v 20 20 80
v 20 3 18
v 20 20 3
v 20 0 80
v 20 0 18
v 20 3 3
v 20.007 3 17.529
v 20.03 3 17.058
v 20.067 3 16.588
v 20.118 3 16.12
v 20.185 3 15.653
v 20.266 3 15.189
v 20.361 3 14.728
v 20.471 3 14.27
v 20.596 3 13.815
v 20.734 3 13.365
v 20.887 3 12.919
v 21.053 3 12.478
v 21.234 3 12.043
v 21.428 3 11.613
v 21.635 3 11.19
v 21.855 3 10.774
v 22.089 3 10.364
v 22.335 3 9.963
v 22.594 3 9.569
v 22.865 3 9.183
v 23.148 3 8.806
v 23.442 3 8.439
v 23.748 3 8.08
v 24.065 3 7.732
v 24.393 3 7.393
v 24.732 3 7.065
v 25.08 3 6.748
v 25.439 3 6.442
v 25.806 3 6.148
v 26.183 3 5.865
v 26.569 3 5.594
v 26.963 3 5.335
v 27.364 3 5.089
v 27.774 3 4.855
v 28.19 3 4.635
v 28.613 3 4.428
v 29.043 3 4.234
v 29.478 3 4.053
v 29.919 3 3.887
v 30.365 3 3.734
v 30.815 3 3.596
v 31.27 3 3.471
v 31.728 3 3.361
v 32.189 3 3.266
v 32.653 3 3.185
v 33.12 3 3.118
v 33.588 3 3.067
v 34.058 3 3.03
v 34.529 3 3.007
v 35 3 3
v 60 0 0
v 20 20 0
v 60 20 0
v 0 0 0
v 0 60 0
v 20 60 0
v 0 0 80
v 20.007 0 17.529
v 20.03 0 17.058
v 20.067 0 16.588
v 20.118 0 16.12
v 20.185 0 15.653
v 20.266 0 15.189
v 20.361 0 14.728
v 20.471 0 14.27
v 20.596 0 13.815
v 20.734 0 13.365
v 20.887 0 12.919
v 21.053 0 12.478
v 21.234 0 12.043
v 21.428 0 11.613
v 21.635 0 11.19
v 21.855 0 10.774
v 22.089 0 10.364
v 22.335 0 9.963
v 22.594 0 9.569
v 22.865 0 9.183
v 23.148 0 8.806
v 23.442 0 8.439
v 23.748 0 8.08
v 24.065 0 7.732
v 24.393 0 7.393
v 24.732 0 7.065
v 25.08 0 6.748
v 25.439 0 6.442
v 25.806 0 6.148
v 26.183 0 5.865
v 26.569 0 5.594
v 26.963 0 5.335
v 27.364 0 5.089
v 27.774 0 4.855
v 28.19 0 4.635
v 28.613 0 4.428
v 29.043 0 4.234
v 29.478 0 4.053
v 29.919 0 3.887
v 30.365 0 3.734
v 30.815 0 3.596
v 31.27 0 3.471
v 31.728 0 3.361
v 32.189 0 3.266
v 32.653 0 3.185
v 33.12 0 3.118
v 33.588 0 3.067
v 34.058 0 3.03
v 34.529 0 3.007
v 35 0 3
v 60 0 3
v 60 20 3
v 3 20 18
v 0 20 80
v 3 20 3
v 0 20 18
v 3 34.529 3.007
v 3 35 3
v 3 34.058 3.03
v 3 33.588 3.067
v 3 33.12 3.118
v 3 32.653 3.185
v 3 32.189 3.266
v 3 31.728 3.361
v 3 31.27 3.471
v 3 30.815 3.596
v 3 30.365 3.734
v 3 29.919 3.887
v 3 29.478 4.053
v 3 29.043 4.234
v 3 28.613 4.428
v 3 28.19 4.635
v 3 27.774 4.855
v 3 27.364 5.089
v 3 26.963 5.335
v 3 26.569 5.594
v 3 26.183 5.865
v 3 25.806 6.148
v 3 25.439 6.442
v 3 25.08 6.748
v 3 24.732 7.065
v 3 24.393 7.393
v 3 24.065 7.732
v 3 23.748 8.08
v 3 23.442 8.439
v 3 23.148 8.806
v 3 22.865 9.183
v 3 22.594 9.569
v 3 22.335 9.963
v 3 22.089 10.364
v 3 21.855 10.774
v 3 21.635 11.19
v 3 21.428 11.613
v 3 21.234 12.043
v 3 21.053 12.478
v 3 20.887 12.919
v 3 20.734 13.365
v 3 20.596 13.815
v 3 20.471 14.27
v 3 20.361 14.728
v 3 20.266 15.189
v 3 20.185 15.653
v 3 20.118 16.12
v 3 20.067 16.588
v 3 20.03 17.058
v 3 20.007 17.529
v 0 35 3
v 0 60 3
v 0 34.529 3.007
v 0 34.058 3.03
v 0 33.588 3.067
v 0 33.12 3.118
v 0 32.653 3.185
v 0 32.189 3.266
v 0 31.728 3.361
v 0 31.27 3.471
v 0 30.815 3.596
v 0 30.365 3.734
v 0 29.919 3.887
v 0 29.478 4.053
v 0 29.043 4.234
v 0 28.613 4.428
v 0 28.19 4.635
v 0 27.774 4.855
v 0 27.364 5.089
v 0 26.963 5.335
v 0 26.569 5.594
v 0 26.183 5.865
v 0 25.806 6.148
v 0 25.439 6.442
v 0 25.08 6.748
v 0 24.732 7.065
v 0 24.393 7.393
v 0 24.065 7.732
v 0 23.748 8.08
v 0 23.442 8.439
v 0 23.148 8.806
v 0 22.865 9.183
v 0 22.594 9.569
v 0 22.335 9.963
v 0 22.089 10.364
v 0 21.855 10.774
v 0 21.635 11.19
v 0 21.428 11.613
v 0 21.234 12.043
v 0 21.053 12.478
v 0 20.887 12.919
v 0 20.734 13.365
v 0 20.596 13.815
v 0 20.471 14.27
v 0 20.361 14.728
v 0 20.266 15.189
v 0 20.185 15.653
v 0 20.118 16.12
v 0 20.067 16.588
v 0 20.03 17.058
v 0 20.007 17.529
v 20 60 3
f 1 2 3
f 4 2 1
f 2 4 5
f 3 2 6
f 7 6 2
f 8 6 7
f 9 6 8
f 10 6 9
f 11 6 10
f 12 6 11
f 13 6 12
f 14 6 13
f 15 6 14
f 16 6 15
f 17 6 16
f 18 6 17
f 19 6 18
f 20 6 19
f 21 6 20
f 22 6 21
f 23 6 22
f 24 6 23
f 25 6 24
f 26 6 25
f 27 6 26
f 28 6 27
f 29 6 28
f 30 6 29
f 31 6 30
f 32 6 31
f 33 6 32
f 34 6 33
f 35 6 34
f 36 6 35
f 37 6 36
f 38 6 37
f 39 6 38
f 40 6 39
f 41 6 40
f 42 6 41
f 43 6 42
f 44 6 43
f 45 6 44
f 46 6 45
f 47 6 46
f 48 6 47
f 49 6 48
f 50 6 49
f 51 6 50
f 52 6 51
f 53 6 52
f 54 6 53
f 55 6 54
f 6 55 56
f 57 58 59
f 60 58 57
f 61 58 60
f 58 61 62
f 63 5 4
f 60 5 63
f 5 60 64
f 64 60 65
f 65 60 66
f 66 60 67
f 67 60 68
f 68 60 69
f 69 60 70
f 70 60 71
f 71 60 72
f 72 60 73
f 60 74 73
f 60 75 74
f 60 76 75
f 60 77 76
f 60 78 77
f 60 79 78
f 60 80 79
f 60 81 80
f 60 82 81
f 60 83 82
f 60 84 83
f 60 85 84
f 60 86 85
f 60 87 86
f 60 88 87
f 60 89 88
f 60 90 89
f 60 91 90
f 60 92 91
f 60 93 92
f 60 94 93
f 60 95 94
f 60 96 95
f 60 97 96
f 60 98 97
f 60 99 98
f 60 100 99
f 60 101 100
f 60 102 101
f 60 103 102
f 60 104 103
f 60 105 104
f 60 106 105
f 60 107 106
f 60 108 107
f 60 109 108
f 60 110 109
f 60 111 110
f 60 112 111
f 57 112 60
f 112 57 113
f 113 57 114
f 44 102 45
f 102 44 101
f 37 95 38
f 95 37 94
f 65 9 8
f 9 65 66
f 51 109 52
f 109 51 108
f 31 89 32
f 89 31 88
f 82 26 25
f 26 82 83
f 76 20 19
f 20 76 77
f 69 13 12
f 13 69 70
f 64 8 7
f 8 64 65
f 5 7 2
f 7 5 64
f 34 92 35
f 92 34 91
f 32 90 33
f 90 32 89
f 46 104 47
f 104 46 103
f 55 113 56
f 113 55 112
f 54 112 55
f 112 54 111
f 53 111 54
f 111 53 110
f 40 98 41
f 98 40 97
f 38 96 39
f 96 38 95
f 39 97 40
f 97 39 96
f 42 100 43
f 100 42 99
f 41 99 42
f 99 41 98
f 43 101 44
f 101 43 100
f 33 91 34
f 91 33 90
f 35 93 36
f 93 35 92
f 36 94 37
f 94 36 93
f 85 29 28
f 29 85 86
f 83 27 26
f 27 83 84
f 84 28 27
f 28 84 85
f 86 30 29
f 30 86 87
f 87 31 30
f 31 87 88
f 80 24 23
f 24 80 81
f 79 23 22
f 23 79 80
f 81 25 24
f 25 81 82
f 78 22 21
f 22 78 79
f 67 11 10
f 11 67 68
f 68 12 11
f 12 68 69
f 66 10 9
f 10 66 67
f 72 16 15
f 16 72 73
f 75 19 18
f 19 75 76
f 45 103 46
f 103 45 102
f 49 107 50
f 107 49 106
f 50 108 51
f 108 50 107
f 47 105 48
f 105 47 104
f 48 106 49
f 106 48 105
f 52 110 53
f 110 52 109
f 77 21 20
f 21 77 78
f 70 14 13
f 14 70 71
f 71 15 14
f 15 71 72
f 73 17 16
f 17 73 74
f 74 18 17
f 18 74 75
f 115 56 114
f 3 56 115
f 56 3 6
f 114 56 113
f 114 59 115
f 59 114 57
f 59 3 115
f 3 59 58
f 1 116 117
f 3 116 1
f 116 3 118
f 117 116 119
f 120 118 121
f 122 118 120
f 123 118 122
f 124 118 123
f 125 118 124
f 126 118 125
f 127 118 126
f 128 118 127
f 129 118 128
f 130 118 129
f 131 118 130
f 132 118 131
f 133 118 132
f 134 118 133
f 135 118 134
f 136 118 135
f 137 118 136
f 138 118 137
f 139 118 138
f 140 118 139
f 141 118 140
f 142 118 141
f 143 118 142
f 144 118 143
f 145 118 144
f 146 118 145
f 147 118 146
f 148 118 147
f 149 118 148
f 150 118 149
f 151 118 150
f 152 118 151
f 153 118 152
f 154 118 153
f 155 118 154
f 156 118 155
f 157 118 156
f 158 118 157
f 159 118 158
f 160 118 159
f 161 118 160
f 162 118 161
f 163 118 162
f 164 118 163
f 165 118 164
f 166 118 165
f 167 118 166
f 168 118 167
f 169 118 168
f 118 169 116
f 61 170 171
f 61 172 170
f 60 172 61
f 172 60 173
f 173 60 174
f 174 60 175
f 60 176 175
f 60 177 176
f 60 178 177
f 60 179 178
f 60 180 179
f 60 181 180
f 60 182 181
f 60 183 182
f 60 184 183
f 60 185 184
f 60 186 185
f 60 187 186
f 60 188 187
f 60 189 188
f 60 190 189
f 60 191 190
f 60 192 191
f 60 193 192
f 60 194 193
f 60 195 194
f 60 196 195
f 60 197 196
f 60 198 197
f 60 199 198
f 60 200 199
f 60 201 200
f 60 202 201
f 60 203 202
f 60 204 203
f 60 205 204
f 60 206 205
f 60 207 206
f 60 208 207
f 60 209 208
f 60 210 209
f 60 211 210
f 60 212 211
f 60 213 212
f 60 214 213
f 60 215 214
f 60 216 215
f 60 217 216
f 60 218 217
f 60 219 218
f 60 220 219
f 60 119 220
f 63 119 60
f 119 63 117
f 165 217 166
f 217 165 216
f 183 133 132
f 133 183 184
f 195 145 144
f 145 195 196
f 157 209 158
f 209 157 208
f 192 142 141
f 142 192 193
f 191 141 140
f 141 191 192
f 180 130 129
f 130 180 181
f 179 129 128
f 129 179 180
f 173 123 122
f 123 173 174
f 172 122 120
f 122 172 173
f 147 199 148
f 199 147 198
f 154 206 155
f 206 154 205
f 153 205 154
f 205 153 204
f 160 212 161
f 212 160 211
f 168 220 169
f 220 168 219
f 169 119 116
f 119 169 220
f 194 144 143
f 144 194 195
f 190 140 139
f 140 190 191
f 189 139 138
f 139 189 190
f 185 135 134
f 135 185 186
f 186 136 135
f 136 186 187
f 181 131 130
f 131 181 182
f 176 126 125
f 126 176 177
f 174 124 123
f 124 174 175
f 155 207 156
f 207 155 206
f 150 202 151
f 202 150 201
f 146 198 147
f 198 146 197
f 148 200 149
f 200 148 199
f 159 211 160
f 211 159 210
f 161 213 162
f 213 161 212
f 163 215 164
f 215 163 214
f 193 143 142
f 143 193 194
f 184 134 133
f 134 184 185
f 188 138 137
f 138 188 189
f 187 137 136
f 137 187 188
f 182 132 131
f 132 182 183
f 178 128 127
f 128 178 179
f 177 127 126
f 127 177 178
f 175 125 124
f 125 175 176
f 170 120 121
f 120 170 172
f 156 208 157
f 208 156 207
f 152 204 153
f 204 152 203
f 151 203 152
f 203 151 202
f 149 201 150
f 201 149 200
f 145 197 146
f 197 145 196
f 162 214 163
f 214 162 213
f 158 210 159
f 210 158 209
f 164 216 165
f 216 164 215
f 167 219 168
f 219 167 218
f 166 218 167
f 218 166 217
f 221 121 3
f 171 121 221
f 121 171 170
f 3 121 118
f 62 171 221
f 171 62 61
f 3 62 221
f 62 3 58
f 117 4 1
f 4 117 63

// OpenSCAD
$fn = 200;

height = 80;
bracketLength = 40;
legWidth = 20;
bracketThickness = 3;
braceLength = 30;

// leg
cube([legWidth, legWidth, height]);

// bracket 1
translate([legWidth, 0, 0])
bracket1();

rotate([0, 0, 90])
translate([legWidth, -legWidth, 0])
bracket2();

module bracket1() {
    difference() {
        union() {
            cube([bracketLength, legWidth, bracketThickness]);
        
            //brace
            difference() {
                cube([braceLength/2, bracketThickness, braceLength/2+bracketThickness]);
                
                rotate([90, 0, 0])
                translate([braceLength/2, braceLength/2 + bracketThickness, -bracketThickness - 0.5])
                cylinder(h=bracketThickness + 1.0, r=braceLength/2);
            }
        }
    }
}

module bracket2() {
    difference() {
        union() {
            cube([bracketLength, legWidth, bracketThickness]);
        
            //brace
            difference() {
                translate([0, legWidth-bracketThickness, 0])
                cube([braceLength/2, bracketThickness, braceLength/2 + bracketThickness]);
                
                rotate([90, 0, 0])
                translate([braceLength/2, braceLength/2 + bracketThickness, - legWidth - 0.5])
                cylinder(h=bracketThickness + 1.0, r=braceLength/2);
            }
        }
    }
}
